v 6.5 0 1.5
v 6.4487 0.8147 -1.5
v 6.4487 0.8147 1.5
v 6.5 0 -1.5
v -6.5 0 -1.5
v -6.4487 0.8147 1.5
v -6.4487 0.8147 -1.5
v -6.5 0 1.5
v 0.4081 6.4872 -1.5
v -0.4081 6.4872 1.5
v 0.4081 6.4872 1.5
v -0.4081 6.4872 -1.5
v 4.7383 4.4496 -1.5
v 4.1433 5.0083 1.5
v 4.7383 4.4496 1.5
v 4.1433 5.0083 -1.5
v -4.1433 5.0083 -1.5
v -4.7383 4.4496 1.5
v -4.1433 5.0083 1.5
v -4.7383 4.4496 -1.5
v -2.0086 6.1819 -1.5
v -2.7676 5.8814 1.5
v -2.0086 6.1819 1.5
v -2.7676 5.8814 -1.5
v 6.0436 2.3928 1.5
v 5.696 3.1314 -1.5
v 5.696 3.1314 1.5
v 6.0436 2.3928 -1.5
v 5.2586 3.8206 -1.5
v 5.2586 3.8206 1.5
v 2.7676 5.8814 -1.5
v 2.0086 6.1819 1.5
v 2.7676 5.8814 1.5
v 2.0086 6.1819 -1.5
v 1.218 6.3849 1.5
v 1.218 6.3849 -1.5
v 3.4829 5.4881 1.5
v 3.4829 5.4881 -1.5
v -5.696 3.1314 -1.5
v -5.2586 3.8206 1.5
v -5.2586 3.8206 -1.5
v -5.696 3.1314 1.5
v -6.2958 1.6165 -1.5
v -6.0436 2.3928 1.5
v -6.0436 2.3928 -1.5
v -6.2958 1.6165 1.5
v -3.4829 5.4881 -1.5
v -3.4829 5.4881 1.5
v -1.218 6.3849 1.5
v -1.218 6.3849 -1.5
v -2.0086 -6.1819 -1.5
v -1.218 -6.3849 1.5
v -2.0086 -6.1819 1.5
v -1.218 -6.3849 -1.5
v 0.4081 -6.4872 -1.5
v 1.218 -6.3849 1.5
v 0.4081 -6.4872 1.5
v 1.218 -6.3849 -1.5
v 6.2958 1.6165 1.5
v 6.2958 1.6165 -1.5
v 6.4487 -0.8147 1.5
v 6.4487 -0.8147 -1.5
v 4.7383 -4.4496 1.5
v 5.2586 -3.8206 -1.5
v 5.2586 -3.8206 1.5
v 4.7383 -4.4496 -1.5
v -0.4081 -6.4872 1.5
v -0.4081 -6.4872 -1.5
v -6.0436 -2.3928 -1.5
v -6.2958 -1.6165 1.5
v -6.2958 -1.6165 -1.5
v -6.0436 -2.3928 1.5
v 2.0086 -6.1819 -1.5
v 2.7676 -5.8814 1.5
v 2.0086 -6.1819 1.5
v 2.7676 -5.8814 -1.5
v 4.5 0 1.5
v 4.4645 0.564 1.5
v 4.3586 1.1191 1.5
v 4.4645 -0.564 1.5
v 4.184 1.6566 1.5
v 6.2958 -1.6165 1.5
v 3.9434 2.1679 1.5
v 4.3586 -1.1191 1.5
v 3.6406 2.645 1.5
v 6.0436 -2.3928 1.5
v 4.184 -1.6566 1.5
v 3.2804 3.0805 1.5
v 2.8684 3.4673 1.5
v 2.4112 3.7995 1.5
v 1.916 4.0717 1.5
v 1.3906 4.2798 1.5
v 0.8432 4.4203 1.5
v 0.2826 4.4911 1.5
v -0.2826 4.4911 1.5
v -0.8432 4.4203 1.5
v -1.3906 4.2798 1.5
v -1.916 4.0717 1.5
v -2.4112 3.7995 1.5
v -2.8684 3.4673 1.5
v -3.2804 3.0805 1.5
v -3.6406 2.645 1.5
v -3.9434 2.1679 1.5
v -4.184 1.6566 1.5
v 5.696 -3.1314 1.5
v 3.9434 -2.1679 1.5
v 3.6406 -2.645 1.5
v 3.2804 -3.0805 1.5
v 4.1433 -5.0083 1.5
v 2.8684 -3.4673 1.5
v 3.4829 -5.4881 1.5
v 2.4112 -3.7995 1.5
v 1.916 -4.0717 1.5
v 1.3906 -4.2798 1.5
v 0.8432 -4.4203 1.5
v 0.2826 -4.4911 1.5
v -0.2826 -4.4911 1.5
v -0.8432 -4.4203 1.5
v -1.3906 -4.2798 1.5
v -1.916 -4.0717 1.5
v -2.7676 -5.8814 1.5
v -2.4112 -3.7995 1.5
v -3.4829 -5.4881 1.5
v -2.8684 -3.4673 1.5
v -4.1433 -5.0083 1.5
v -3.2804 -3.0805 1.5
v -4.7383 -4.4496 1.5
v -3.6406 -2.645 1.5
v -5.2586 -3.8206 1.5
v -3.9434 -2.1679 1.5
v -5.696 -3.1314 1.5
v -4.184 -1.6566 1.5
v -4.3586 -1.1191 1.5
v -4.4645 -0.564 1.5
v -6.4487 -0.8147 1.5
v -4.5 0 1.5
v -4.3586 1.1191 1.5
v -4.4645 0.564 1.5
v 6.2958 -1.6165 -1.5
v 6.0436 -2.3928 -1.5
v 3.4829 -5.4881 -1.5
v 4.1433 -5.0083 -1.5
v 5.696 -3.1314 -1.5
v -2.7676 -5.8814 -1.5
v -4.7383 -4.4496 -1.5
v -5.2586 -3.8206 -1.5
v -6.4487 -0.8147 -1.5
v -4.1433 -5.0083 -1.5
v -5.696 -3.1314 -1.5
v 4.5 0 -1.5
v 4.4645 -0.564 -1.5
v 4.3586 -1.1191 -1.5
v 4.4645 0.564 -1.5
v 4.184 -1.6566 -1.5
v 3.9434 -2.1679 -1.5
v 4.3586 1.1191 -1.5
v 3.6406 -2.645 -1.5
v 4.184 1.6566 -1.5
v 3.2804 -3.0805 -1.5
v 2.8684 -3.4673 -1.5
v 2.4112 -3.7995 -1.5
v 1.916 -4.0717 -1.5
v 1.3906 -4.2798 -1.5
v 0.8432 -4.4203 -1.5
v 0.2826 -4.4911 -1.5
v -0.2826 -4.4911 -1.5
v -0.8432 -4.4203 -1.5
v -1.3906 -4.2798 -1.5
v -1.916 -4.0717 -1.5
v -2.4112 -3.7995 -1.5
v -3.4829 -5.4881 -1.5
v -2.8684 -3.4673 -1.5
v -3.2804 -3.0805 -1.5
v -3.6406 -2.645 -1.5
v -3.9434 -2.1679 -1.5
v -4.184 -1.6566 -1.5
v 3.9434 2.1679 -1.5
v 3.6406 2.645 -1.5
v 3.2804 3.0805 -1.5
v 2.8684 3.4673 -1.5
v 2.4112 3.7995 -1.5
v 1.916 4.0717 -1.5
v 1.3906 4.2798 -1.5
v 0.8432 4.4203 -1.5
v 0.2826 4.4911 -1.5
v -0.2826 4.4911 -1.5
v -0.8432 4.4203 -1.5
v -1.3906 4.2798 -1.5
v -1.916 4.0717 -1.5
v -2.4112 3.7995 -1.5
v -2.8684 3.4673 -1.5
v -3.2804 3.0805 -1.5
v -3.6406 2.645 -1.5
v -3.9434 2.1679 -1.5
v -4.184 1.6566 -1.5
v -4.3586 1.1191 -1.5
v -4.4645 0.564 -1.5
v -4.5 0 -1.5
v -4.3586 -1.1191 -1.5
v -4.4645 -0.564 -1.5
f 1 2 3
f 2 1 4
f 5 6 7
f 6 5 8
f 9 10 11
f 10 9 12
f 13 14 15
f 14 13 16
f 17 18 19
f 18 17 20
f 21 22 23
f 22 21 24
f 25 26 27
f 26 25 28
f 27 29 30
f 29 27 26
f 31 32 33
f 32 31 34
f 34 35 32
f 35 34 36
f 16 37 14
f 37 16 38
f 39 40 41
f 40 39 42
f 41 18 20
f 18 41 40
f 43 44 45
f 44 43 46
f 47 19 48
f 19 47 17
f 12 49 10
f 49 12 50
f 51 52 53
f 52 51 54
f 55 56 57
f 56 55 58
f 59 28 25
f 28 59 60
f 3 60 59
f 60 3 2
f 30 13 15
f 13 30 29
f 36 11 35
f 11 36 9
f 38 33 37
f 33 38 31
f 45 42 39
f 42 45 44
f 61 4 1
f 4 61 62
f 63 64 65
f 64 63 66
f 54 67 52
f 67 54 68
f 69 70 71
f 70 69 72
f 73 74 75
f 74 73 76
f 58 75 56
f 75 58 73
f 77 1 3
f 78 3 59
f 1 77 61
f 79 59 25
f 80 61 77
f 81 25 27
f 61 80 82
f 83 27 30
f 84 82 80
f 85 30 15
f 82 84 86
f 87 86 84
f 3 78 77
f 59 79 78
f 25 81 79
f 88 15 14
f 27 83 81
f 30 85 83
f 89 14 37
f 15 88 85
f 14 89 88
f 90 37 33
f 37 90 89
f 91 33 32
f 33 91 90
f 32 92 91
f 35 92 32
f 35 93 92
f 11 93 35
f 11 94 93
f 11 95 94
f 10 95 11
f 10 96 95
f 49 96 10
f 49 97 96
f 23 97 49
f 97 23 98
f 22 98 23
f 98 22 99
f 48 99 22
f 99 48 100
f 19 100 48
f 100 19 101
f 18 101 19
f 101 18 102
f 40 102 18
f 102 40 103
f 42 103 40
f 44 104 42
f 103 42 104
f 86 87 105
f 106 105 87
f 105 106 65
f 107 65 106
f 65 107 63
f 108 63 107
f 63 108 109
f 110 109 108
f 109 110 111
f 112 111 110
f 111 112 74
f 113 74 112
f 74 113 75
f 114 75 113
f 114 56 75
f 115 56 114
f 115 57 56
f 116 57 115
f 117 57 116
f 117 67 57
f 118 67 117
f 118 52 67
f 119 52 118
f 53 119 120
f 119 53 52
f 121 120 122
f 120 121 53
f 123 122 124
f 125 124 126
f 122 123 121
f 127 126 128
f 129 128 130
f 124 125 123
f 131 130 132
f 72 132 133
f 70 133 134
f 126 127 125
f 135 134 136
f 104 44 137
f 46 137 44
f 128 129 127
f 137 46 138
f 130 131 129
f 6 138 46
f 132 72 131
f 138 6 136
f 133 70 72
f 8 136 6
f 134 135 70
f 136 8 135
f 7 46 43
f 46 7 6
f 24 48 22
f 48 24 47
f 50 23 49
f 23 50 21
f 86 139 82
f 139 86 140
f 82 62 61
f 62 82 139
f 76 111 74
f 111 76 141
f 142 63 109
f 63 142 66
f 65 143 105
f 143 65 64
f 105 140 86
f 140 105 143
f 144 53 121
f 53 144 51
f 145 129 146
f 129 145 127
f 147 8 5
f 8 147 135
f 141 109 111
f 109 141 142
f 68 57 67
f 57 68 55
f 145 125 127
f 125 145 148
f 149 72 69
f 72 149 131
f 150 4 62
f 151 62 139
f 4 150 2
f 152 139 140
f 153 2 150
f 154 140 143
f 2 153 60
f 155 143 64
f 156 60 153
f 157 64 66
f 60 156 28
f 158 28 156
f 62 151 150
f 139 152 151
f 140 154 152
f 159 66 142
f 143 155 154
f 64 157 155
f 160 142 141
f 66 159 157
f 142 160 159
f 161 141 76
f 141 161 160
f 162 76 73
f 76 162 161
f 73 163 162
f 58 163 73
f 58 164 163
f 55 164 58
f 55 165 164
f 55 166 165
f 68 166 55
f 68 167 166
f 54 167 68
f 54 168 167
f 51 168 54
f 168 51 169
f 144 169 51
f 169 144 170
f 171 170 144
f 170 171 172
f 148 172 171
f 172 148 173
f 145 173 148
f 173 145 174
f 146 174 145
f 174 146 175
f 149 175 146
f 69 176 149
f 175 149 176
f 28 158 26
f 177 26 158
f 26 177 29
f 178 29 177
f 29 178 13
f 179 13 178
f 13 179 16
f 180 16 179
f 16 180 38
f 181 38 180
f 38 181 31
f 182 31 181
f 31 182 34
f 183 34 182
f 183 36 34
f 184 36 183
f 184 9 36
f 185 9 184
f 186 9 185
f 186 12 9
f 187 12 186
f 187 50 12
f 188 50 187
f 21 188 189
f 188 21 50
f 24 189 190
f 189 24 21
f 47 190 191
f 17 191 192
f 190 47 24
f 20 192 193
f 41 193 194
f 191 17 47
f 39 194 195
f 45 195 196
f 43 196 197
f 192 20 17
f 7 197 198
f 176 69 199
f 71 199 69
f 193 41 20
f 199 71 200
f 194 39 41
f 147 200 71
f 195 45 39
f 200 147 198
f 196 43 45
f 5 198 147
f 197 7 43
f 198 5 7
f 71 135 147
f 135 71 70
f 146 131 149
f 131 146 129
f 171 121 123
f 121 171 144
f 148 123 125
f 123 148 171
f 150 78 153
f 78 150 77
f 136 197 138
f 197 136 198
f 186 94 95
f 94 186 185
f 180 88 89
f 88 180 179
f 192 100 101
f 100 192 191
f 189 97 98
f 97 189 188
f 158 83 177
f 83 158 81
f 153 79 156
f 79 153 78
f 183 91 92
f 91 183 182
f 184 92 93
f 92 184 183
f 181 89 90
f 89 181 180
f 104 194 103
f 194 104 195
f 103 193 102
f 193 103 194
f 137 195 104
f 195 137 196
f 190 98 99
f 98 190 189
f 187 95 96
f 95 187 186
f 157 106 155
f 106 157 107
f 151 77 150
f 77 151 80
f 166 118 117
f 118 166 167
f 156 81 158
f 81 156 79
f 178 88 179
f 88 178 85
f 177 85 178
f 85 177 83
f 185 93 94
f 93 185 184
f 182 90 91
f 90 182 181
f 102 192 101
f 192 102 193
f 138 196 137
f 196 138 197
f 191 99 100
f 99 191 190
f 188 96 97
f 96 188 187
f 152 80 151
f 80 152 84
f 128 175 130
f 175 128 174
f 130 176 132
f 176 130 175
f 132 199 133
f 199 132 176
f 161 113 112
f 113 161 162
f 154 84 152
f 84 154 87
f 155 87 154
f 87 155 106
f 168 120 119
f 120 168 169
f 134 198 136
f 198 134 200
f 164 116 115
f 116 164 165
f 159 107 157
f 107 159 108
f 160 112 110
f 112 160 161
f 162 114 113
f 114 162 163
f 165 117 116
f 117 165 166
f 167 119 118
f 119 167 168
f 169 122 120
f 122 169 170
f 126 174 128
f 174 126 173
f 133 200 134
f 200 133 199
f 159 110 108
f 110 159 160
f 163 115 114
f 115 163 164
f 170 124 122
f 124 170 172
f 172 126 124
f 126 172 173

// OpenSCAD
$fn = 50;


difference() {
	union() {
		translate(v = [0, 0, -1.5000000000]) {
			cylinder(h = 3, r = 6.5000000000);
		}
	}
	union() {
		translate(v = [0, 0, -100.0000000000]) {
			cylinder(h = 200, r = 4.5000000000);
		}
	}
}
